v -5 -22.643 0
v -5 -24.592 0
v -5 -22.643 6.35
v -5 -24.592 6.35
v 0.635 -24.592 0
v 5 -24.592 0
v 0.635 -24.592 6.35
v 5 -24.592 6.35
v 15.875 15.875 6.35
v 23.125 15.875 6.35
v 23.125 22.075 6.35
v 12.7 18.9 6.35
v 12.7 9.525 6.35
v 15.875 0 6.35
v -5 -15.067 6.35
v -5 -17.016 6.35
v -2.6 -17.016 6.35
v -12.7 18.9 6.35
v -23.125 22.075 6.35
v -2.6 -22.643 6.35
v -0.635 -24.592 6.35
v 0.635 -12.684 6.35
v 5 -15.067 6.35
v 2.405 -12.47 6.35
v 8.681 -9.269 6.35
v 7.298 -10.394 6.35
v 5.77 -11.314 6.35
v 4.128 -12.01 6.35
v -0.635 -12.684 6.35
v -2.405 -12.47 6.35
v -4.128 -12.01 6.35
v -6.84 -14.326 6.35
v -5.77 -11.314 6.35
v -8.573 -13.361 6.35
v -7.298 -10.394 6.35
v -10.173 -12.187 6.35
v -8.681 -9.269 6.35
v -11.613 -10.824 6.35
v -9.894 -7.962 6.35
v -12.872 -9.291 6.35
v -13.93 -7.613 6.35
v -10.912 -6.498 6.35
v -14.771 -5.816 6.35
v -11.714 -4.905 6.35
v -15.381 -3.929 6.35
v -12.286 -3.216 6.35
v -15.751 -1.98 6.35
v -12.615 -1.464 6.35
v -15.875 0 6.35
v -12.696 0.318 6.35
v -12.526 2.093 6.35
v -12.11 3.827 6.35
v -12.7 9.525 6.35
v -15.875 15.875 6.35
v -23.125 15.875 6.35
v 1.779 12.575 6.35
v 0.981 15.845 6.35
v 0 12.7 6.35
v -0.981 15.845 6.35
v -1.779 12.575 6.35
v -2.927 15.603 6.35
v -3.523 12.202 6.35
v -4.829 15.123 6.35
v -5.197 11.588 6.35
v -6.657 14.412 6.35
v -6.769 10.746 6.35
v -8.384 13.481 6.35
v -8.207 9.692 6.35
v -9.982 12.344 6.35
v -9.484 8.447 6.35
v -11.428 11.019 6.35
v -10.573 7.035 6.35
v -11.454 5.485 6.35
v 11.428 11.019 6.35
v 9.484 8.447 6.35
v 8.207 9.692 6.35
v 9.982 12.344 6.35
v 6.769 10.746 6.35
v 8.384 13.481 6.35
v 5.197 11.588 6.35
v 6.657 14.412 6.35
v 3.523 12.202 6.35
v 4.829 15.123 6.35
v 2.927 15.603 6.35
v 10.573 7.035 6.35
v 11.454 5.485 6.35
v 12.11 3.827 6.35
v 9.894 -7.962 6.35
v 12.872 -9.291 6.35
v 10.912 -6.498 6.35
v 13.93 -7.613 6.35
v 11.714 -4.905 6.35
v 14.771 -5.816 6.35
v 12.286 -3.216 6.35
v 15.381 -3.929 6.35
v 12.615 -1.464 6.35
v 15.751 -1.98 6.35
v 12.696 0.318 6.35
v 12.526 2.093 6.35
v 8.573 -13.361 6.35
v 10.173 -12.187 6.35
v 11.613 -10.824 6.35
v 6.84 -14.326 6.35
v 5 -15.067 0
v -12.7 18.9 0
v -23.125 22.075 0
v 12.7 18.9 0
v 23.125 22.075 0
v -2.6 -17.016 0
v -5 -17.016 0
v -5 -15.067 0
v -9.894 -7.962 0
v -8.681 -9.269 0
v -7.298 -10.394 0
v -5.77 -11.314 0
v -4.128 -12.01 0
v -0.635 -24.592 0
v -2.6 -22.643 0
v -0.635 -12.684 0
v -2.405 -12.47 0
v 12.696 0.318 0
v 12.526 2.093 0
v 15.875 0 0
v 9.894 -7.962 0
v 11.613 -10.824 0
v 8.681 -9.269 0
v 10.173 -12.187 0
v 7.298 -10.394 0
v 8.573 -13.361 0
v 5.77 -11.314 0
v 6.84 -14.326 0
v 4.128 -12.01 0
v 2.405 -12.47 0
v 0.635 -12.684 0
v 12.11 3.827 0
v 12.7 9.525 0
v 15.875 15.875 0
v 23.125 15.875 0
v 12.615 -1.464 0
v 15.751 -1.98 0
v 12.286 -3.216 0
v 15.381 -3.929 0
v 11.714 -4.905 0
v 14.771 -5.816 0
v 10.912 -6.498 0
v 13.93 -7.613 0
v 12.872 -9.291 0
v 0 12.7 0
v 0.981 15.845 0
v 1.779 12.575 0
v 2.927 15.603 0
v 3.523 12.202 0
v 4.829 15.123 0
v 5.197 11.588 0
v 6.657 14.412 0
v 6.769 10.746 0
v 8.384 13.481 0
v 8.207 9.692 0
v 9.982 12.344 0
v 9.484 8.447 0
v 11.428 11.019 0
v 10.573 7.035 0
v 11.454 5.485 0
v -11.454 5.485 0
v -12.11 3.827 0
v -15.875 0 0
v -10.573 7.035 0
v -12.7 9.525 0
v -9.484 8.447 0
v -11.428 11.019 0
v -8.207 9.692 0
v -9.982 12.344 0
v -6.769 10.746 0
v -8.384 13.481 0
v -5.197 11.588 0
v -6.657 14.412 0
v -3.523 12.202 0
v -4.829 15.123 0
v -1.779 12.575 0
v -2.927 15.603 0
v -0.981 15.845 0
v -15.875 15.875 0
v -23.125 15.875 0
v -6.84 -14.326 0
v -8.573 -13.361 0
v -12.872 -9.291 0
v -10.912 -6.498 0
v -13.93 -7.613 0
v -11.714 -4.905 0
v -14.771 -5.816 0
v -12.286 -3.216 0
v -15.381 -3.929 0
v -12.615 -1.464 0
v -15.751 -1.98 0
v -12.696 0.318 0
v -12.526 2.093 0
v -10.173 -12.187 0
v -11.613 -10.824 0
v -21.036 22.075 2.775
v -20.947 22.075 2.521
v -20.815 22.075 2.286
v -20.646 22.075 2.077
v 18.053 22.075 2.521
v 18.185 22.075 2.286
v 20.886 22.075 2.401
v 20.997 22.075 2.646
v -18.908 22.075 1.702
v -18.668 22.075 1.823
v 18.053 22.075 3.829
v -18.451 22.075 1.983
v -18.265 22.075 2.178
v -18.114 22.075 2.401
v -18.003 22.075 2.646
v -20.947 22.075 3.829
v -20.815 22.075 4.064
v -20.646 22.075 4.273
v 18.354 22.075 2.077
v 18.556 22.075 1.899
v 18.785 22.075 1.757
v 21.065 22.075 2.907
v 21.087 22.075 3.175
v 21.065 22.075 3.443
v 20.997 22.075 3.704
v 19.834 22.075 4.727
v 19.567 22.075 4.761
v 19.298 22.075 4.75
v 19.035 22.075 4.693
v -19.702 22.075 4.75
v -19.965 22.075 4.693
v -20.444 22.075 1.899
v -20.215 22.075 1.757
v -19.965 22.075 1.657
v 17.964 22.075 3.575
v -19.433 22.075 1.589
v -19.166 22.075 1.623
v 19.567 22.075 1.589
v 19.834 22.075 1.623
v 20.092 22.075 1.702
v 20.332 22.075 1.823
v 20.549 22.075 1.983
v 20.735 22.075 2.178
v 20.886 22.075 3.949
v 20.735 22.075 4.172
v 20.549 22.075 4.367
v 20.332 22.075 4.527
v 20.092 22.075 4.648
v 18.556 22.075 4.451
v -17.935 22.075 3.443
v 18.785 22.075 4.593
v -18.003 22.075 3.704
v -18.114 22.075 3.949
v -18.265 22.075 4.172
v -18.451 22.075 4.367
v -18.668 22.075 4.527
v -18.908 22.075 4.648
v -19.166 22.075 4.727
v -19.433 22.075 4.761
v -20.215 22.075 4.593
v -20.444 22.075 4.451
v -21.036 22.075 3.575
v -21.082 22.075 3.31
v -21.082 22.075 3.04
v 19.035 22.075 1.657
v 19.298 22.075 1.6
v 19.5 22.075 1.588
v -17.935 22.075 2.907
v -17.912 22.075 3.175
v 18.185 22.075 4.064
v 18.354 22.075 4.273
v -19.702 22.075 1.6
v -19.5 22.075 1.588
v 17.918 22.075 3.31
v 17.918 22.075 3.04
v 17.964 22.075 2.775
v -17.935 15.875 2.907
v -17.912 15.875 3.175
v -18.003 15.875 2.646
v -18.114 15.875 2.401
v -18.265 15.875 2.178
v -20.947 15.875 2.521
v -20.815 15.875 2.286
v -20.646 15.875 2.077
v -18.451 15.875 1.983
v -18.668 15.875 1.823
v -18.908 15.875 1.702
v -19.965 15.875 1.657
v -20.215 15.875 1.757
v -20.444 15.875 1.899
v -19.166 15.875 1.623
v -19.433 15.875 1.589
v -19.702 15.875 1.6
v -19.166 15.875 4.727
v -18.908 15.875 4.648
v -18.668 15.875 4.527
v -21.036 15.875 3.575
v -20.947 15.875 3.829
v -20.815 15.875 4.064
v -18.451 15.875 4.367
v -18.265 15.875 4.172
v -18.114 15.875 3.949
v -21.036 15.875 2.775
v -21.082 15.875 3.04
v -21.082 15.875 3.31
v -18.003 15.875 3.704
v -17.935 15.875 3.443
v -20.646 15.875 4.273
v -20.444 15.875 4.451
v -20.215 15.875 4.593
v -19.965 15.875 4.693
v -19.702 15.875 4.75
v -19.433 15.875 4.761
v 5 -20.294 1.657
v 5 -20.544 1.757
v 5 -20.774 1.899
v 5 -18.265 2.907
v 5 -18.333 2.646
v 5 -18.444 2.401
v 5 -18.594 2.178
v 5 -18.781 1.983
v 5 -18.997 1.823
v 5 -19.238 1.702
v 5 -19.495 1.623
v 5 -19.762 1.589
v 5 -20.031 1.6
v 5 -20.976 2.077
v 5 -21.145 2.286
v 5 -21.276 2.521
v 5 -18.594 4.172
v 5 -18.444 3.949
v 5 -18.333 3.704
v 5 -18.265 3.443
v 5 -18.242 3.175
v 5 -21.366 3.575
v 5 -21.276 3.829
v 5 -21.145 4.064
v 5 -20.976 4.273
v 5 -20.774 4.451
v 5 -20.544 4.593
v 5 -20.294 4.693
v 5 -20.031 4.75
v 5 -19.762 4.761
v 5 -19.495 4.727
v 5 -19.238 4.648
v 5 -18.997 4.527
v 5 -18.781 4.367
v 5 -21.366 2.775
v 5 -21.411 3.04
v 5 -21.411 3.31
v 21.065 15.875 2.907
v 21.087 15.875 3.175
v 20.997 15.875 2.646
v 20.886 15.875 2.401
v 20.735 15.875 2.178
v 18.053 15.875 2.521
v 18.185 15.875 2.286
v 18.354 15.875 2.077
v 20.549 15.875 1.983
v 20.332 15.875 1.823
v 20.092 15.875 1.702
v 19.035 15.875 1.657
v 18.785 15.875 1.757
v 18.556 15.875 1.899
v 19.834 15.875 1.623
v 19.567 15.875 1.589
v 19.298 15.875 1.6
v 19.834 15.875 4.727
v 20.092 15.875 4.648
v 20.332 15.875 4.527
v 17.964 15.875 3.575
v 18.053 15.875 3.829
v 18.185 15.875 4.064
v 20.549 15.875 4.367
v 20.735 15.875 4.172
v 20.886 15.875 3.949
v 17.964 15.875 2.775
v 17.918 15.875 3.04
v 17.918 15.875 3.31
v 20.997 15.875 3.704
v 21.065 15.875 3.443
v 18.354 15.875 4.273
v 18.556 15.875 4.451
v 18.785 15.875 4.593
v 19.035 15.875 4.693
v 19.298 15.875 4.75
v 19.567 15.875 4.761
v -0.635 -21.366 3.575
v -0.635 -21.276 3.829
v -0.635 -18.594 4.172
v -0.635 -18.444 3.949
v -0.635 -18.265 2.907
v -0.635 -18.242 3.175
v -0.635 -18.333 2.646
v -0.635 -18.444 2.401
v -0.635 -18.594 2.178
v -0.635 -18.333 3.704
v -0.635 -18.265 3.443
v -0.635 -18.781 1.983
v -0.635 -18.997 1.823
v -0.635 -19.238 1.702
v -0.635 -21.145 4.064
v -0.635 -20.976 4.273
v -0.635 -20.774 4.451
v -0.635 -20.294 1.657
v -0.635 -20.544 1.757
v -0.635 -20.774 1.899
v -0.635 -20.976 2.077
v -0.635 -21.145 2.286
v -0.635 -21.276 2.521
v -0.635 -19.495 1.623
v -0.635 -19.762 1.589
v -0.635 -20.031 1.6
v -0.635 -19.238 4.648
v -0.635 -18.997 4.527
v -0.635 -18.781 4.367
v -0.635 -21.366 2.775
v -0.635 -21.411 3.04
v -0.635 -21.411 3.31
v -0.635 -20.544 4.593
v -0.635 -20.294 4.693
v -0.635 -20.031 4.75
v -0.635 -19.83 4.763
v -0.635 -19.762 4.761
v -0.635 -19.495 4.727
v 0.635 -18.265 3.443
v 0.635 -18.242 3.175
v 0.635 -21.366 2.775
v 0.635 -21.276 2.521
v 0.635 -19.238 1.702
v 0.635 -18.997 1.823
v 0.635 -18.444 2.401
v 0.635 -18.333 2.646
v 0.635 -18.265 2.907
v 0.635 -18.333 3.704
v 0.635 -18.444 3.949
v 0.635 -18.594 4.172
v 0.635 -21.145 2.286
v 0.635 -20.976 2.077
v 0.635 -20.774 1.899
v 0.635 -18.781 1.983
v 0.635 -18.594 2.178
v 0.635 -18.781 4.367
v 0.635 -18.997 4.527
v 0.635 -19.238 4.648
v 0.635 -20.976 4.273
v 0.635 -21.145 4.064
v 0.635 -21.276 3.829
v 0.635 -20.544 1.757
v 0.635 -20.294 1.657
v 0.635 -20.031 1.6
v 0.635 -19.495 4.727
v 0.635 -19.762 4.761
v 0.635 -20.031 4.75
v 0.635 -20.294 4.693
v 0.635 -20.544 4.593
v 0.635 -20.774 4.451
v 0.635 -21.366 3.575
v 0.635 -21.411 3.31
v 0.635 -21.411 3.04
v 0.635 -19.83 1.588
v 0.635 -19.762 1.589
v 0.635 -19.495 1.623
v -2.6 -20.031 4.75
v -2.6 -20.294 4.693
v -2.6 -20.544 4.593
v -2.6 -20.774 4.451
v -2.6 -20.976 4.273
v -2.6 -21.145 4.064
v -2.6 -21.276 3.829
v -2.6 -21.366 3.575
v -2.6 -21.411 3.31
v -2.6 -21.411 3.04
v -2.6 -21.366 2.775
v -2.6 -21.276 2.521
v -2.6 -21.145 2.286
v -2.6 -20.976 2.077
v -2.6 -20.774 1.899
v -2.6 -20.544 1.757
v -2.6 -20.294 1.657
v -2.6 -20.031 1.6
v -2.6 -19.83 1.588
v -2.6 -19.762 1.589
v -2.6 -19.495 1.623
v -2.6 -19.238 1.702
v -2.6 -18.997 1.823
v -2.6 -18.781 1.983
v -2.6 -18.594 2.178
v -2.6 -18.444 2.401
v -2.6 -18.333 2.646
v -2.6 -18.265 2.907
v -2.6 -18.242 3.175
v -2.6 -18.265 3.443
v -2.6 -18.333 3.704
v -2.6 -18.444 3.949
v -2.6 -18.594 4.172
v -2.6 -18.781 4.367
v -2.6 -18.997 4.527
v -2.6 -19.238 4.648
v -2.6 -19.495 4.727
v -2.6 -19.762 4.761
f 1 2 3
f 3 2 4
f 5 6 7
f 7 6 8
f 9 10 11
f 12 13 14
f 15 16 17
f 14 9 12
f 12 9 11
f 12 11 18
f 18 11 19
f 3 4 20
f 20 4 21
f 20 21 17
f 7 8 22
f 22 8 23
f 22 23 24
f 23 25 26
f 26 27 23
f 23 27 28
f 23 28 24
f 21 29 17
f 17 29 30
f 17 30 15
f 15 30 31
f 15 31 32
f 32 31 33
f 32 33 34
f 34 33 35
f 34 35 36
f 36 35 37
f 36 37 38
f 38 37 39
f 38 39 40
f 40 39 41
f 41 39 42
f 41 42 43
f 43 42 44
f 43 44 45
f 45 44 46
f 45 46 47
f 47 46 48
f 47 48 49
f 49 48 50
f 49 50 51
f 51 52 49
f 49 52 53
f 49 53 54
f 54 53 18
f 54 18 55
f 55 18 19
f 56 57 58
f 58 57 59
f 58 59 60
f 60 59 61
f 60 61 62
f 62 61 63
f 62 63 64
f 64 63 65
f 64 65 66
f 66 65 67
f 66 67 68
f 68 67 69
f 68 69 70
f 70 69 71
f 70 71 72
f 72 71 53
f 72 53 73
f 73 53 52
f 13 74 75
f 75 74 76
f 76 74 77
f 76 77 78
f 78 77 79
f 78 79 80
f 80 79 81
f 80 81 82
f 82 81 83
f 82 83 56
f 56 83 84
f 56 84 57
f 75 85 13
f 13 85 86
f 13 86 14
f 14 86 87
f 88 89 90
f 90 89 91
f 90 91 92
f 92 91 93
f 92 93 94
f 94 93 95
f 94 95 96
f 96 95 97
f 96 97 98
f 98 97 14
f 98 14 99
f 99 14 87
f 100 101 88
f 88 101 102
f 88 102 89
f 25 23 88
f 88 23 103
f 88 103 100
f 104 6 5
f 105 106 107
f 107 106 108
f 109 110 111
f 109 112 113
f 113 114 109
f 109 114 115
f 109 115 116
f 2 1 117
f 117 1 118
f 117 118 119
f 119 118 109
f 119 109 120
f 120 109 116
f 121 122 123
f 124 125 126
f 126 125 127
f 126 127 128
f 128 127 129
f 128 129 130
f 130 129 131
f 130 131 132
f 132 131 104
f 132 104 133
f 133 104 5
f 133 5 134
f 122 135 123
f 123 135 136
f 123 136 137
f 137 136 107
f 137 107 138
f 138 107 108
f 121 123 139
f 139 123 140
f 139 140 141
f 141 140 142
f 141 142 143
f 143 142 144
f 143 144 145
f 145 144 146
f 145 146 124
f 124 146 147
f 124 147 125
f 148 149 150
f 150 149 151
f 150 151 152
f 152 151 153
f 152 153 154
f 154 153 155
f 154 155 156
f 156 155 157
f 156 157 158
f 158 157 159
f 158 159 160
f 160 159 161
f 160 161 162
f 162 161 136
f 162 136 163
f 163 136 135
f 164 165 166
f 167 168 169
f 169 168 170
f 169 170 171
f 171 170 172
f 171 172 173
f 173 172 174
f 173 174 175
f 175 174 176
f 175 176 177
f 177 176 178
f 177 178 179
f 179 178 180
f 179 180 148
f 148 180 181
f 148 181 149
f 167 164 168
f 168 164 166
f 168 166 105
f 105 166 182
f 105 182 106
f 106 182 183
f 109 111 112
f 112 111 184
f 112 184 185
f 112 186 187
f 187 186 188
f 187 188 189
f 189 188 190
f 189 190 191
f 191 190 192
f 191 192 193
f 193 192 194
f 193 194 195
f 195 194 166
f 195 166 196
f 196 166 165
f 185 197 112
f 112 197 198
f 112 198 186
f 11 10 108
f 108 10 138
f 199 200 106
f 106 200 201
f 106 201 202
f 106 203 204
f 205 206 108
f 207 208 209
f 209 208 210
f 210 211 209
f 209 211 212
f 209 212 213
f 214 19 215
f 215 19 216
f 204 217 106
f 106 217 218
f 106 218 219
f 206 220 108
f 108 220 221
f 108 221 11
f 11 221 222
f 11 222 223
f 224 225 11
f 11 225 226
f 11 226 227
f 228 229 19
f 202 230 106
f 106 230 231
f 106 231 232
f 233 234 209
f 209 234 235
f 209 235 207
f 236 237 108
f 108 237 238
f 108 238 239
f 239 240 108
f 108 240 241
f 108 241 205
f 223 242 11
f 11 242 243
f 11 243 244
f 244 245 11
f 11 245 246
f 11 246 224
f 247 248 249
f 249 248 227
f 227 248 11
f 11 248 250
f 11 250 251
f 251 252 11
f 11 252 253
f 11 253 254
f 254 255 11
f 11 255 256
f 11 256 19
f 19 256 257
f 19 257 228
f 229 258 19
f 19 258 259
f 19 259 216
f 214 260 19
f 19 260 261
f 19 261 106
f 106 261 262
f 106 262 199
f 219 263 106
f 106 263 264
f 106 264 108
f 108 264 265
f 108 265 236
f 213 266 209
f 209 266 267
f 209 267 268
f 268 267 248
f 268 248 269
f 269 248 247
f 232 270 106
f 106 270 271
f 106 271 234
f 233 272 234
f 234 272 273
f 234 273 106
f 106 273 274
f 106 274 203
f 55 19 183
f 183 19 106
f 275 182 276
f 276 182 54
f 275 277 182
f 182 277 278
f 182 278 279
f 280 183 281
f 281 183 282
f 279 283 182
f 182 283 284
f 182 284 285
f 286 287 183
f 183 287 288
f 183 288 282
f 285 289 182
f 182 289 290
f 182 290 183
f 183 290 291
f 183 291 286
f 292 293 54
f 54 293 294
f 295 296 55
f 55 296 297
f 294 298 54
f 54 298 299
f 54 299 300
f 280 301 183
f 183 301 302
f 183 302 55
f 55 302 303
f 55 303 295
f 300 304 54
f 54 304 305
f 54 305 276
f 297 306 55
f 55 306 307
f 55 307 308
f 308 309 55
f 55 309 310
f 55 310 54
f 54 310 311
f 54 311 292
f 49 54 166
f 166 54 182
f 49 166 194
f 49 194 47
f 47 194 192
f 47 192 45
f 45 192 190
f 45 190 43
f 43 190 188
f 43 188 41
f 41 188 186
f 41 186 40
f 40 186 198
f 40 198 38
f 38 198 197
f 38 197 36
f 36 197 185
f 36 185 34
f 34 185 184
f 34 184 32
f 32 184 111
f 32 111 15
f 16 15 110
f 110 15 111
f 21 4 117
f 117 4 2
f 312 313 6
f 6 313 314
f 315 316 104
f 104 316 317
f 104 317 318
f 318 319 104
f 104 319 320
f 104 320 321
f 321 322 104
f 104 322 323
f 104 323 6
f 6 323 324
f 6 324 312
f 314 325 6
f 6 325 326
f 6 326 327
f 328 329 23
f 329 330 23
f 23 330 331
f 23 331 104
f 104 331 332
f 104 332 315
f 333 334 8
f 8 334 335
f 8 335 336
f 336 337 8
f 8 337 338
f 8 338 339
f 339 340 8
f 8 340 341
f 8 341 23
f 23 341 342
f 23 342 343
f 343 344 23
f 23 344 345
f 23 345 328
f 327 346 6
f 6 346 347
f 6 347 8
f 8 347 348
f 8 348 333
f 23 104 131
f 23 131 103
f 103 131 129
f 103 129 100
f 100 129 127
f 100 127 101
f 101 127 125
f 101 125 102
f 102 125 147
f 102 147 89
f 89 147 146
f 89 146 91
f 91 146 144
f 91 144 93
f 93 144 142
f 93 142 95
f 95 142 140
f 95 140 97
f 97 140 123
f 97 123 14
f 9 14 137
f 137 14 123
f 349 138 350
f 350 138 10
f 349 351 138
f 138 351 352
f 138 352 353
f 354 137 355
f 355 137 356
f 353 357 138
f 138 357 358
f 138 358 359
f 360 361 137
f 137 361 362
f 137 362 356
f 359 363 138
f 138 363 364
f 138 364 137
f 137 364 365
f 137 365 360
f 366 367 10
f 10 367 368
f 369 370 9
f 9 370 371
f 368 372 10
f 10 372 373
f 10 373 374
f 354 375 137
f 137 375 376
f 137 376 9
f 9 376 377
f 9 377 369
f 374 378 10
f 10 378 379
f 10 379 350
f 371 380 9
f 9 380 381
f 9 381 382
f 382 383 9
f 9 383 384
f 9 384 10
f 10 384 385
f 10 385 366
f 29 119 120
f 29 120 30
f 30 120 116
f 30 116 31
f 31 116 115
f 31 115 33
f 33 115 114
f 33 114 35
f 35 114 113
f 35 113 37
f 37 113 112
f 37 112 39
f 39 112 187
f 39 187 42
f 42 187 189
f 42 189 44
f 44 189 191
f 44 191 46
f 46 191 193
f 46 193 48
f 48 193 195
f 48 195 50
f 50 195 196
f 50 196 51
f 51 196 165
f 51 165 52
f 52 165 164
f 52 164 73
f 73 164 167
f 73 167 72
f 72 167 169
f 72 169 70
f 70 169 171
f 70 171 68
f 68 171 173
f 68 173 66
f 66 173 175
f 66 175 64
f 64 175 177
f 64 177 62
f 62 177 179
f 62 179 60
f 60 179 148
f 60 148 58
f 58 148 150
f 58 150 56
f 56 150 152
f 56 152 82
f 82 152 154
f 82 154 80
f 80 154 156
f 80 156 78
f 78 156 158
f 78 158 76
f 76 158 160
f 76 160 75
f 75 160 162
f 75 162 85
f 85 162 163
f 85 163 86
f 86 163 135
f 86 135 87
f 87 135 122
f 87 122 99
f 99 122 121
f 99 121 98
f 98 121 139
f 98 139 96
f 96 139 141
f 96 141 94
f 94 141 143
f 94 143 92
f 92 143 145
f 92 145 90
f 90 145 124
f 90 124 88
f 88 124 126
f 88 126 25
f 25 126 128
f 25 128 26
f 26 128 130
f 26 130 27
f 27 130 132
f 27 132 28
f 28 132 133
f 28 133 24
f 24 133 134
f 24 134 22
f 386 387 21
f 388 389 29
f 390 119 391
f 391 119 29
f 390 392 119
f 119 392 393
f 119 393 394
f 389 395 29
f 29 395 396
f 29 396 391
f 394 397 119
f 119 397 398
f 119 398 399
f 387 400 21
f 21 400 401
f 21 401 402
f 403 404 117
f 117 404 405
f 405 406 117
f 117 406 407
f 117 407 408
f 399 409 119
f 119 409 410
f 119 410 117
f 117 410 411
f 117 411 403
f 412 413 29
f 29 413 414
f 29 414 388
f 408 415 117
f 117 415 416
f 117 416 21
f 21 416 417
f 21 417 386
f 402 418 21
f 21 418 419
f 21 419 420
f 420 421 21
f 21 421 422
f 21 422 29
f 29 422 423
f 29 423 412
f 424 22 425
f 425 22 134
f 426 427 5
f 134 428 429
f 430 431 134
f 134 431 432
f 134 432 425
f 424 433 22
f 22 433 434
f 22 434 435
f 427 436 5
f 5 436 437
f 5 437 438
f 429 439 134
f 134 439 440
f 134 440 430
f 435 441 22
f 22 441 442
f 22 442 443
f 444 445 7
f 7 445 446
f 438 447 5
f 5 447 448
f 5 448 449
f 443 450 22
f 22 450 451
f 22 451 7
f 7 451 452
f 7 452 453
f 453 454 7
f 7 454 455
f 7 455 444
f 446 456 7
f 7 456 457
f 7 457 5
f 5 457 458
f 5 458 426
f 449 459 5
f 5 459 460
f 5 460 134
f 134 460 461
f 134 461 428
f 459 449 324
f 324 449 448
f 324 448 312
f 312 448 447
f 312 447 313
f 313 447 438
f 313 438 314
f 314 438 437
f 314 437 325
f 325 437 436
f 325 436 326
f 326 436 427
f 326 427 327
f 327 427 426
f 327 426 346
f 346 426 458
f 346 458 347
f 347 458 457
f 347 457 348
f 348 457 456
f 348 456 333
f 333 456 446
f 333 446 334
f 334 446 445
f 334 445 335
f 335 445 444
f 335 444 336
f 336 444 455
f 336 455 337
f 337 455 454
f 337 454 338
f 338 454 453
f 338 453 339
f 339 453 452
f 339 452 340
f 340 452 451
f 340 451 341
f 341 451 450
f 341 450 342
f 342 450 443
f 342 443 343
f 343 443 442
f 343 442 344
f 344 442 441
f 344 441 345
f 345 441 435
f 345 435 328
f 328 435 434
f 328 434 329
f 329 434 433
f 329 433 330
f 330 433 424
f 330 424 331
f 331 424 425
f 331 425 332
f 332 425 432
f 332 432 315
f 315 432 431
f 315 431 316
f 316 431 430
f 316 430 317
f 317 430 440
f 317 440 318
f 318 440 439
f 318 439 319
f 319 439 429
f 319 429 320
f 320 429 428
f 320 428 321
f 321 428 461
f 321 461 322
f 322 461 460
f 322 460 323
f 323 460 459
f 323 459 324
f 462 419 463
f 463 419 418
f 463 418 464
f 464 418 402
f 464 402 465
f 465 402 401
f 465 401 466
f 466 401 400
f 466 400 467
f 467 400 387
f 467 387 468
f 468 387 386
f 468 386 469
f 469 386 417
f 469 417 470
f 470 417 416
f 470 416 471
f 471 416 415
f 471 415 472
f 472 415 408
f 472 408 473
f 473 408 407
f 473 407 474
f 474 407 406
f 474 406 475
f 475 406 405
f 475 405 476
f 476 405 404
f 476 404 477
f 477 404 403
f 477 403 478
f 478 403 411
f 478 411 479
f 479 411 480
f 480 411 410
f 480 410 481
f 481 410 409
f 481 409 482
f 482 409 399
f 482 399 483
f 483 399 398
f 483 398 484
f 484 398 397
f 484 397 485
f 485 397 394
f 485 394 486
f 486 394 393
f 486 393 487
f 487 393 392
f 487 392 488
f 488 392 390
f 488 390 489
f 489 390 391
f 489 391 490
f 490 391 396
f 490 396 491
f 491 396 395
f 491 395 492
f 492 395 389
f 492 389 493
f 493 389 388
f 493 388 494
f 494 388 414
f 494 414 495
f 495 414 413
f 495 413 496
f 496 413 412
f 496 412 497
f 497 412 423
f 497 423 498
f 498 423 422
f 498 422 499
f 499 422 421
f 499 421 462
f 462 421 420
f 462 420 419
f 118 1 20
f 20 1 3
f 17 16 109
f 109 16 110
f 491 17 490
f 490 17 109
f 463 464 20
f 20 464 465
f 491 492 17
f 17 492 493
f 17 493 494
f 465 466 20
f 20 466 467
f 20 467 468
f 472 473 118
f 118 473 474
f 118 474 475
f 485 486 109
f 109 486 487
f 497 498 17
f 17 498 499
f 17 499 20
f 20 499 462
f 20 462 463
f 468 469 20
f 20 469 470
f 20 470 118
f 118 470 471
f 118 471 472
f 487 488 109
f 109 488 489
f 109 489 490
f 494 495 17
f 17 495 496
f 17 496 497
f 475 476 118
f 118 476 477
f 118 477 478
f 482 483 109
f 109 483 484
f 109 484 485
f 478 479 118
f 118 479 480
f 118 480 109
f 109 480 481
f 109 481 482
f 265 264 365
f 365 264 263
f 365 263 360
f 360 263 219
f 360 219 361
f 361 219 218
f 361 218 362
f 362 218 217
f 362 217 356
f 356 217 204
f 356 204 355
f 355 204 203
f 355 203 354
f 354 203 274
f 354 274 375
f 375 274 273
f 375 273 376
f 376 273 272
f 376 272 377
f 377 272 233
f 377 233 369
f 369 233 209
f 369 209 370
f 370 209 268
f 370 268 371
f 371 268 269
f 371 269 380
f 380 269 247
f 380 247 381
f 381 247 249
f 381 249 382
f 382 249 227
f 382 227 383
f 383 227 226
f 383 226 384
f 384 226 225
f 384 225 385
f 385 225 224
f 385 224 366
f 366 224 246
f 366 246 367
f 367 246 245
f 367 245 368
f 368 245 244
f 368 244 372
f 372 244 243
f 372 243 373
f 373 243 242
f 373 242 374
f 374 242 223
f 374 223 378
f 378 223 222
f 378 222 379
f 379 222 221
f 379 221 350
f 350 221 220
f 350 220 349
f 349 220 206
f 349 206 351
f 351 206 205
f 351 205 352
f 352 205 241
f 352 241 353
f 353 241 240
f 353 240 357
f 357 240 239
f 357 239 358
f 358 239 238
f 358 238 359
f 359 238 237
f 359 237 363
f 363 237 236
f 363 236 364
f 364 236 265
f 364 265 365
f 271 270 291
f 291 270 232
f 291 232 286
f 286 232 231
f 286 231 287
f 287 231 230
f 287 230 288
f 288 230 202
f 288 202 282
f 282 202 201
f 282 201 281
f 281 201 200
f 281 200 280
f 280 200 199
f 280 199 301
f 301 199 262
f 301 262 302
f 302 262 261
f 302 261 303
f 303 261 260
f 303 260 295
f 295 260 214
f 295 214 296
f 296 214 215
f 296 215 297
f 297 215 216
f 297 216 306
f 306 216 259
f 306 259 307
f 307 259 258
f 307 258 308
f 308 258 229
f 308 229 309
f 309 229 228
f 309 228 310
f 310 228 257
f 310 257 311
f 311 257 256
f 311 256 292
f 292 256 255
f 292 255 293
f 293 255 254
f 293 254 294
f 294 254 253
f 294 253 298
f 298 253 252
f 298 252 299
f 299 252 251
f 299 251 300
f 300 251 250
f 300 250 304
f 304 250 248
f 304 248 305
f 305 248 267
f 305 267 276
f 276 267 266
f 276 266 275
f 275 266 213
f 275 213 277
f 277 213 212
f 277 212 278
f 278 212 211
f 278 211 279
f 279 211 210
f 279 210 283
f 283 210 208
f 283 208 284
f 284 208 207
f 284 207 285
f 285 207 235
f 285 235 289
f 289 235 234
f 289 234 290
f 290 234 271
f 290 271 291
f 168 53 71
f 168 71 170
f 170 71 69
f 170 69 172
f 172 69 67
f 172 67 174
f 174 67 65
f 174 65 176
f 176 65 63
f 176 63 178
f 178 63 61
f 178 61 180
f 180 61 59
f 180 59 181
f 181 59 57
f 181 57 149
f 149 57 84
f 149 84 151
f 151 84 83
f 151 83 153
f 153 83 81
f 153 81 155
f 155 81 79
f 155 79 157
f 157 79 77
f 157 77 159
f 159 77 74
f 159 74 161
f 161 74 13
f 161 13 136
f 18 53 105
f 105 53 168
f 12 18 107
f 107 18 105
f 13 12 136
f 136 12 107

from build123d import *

# Parameters (mm, degrees)
PROFILE_SKETCH_R             = 12.7
PROFILE_EXTRUDE_DEPTH        = 6.35
GAP_SKETCH_W                 = 1.27
GAP_SKETCH_H                 = 17.15262
GAP_CUT_DEPTH                = 7.35
CROSSBOLT_HOLE_SKETCH_R      = 1.5875
CROSSBOLT_HOLE_CUT_DEPTH     = 10
NUT_CAPTURE_POCKET_SKETCH_W  = 4.8
NUT_CAPTURE_POCKET_SKETCH_H  = 5.627
NUT_CAPTURE_POCKET_CUT_DEPTH = 6.35
MOUNTING_HOLE_SKETCH_R       = 1.5875
MOUNTING_HOLE_CUT_DEPTH      = 6.2
LIGHTENING_POCKET_CUT_DEPTH  = 6.35


with BuildPart() as part:
    # Profile Sketch → Profile Extrude (new body)
    with BuildSketch(Plane.XY):
        with BuildLine():
            Line((-15.875, 0), (-15.875, 15.875))
            Line((-15.875, 15.875), (-23.124999989, 15.875))
            Line((-23.124999989, 15.875), (-23.124999989, 22.075))
            Line((-23.124999989, 22.075), (23.124999989, 22.075))
            Line((23.124999989, 22.075), (23.124999989, 15.875))
            Line((23.124999989, 15.875), (15.875, 15.875))
            Line((15.875, 15.875), (15.875, 0))
            ThreePointArc((15.875, 0), (12.872269128, -9.290872537), (5, -15.067037698))
            Line((5, -15.067037698), (5, -24.592037698))
            Line((5, -24.592037698), (-5, -24.592037698))
            Line((-5, -24.592037698), (-5, -15.067037698))
            ThreePointArc((-5, -15.067037698), (-12.872269128, -9.290872537), (-15.875, 0))
        make_face()
        Circle(PROFILE_SKETCH_R, mode=Mode.SUBTRACT)
    extrude(amount=PROFILE_EXTRUDE_DEPTH)

    # Gap Sketch → Gap Cut (cut, through all)
    with BuildSketch(Plane.XY.offset(6.35)):
        with Locations((0, -17.526)):
            Rectangle(GAP_SKETCH_W, GAP_SKETCH_H)
    extrude(amount=-GAP_CUT_DEPTH, mode=Mode.SUBTRACT)

    # Crossbolt Hole Sketch → Crossbolt Hole Cut (cut)
    with BuildSketch(Plane(origin=(5, 0, 0), x_dir=(0, 0, -1), z_dir=(1, 0, 0))):
        with Locations((-3.175, -19.829537698)):
            Circle(CROSSBOLT_HOLE_SKETCH_R)
    extrude(amount=-CROSSBOLT_HOLE_CUT_DEPTH, mode=Mode.SUBTRACT)

    # Nut Capture Pocket Sketch → Nut Capture Pocket Cut (cut)
    with BuildSketch(Plane.XY.offset(6.35)):
        with Locations((-5, -19.829537698)):
            Rectangle(NUT_CAPTURE_POCKET_SKETCH_W, NUT_CAPTURE_POCKET_SKETCH_H)
    extrude(amount=-NUT_CAPTURE_POCKET_CUT_DEPTH, mode=Mode.SUBTRACT)

    # Mounting Hole Sketch → Mounting Hole Cut (cut)
    with BuildSketch(Plane.XZ.offset(-15.875)):
        with Locations((19.499999994, 3.175)):
            Circle(MOUNTING_HOLE_SKETCH_R)
        with Locations((-19.499999995, 3.175)):
            Circle(MOUNTING_HOLE_SKETCH_R)
    extrude(amount=-MOUNTING_HOLE_CUT_DEPTH, mode=Mode.SUBTRACT)

    # Lightening Pocket Sketch → Lightening Pocket Cut (cut)
    with BuildSketch(Plane.XY.offset(6.35)):
        with BuildLine():
            Line((12.7, 18.9), (-12.7, 18.9))
            Line((-12.7, 18.9), (-12.7, 9.525))
            ThreePointArc((-12.7, 9.525), (0, 15.875), (12.7, 9.525))
            Line((12.7, 9.525), (12.7, 18.9))
        make_face()
    extrude(amount=-LIGHTENING_POCKET_CUT_DEPTH, mode=Mode.SUBTRACT)


solid = part.part
